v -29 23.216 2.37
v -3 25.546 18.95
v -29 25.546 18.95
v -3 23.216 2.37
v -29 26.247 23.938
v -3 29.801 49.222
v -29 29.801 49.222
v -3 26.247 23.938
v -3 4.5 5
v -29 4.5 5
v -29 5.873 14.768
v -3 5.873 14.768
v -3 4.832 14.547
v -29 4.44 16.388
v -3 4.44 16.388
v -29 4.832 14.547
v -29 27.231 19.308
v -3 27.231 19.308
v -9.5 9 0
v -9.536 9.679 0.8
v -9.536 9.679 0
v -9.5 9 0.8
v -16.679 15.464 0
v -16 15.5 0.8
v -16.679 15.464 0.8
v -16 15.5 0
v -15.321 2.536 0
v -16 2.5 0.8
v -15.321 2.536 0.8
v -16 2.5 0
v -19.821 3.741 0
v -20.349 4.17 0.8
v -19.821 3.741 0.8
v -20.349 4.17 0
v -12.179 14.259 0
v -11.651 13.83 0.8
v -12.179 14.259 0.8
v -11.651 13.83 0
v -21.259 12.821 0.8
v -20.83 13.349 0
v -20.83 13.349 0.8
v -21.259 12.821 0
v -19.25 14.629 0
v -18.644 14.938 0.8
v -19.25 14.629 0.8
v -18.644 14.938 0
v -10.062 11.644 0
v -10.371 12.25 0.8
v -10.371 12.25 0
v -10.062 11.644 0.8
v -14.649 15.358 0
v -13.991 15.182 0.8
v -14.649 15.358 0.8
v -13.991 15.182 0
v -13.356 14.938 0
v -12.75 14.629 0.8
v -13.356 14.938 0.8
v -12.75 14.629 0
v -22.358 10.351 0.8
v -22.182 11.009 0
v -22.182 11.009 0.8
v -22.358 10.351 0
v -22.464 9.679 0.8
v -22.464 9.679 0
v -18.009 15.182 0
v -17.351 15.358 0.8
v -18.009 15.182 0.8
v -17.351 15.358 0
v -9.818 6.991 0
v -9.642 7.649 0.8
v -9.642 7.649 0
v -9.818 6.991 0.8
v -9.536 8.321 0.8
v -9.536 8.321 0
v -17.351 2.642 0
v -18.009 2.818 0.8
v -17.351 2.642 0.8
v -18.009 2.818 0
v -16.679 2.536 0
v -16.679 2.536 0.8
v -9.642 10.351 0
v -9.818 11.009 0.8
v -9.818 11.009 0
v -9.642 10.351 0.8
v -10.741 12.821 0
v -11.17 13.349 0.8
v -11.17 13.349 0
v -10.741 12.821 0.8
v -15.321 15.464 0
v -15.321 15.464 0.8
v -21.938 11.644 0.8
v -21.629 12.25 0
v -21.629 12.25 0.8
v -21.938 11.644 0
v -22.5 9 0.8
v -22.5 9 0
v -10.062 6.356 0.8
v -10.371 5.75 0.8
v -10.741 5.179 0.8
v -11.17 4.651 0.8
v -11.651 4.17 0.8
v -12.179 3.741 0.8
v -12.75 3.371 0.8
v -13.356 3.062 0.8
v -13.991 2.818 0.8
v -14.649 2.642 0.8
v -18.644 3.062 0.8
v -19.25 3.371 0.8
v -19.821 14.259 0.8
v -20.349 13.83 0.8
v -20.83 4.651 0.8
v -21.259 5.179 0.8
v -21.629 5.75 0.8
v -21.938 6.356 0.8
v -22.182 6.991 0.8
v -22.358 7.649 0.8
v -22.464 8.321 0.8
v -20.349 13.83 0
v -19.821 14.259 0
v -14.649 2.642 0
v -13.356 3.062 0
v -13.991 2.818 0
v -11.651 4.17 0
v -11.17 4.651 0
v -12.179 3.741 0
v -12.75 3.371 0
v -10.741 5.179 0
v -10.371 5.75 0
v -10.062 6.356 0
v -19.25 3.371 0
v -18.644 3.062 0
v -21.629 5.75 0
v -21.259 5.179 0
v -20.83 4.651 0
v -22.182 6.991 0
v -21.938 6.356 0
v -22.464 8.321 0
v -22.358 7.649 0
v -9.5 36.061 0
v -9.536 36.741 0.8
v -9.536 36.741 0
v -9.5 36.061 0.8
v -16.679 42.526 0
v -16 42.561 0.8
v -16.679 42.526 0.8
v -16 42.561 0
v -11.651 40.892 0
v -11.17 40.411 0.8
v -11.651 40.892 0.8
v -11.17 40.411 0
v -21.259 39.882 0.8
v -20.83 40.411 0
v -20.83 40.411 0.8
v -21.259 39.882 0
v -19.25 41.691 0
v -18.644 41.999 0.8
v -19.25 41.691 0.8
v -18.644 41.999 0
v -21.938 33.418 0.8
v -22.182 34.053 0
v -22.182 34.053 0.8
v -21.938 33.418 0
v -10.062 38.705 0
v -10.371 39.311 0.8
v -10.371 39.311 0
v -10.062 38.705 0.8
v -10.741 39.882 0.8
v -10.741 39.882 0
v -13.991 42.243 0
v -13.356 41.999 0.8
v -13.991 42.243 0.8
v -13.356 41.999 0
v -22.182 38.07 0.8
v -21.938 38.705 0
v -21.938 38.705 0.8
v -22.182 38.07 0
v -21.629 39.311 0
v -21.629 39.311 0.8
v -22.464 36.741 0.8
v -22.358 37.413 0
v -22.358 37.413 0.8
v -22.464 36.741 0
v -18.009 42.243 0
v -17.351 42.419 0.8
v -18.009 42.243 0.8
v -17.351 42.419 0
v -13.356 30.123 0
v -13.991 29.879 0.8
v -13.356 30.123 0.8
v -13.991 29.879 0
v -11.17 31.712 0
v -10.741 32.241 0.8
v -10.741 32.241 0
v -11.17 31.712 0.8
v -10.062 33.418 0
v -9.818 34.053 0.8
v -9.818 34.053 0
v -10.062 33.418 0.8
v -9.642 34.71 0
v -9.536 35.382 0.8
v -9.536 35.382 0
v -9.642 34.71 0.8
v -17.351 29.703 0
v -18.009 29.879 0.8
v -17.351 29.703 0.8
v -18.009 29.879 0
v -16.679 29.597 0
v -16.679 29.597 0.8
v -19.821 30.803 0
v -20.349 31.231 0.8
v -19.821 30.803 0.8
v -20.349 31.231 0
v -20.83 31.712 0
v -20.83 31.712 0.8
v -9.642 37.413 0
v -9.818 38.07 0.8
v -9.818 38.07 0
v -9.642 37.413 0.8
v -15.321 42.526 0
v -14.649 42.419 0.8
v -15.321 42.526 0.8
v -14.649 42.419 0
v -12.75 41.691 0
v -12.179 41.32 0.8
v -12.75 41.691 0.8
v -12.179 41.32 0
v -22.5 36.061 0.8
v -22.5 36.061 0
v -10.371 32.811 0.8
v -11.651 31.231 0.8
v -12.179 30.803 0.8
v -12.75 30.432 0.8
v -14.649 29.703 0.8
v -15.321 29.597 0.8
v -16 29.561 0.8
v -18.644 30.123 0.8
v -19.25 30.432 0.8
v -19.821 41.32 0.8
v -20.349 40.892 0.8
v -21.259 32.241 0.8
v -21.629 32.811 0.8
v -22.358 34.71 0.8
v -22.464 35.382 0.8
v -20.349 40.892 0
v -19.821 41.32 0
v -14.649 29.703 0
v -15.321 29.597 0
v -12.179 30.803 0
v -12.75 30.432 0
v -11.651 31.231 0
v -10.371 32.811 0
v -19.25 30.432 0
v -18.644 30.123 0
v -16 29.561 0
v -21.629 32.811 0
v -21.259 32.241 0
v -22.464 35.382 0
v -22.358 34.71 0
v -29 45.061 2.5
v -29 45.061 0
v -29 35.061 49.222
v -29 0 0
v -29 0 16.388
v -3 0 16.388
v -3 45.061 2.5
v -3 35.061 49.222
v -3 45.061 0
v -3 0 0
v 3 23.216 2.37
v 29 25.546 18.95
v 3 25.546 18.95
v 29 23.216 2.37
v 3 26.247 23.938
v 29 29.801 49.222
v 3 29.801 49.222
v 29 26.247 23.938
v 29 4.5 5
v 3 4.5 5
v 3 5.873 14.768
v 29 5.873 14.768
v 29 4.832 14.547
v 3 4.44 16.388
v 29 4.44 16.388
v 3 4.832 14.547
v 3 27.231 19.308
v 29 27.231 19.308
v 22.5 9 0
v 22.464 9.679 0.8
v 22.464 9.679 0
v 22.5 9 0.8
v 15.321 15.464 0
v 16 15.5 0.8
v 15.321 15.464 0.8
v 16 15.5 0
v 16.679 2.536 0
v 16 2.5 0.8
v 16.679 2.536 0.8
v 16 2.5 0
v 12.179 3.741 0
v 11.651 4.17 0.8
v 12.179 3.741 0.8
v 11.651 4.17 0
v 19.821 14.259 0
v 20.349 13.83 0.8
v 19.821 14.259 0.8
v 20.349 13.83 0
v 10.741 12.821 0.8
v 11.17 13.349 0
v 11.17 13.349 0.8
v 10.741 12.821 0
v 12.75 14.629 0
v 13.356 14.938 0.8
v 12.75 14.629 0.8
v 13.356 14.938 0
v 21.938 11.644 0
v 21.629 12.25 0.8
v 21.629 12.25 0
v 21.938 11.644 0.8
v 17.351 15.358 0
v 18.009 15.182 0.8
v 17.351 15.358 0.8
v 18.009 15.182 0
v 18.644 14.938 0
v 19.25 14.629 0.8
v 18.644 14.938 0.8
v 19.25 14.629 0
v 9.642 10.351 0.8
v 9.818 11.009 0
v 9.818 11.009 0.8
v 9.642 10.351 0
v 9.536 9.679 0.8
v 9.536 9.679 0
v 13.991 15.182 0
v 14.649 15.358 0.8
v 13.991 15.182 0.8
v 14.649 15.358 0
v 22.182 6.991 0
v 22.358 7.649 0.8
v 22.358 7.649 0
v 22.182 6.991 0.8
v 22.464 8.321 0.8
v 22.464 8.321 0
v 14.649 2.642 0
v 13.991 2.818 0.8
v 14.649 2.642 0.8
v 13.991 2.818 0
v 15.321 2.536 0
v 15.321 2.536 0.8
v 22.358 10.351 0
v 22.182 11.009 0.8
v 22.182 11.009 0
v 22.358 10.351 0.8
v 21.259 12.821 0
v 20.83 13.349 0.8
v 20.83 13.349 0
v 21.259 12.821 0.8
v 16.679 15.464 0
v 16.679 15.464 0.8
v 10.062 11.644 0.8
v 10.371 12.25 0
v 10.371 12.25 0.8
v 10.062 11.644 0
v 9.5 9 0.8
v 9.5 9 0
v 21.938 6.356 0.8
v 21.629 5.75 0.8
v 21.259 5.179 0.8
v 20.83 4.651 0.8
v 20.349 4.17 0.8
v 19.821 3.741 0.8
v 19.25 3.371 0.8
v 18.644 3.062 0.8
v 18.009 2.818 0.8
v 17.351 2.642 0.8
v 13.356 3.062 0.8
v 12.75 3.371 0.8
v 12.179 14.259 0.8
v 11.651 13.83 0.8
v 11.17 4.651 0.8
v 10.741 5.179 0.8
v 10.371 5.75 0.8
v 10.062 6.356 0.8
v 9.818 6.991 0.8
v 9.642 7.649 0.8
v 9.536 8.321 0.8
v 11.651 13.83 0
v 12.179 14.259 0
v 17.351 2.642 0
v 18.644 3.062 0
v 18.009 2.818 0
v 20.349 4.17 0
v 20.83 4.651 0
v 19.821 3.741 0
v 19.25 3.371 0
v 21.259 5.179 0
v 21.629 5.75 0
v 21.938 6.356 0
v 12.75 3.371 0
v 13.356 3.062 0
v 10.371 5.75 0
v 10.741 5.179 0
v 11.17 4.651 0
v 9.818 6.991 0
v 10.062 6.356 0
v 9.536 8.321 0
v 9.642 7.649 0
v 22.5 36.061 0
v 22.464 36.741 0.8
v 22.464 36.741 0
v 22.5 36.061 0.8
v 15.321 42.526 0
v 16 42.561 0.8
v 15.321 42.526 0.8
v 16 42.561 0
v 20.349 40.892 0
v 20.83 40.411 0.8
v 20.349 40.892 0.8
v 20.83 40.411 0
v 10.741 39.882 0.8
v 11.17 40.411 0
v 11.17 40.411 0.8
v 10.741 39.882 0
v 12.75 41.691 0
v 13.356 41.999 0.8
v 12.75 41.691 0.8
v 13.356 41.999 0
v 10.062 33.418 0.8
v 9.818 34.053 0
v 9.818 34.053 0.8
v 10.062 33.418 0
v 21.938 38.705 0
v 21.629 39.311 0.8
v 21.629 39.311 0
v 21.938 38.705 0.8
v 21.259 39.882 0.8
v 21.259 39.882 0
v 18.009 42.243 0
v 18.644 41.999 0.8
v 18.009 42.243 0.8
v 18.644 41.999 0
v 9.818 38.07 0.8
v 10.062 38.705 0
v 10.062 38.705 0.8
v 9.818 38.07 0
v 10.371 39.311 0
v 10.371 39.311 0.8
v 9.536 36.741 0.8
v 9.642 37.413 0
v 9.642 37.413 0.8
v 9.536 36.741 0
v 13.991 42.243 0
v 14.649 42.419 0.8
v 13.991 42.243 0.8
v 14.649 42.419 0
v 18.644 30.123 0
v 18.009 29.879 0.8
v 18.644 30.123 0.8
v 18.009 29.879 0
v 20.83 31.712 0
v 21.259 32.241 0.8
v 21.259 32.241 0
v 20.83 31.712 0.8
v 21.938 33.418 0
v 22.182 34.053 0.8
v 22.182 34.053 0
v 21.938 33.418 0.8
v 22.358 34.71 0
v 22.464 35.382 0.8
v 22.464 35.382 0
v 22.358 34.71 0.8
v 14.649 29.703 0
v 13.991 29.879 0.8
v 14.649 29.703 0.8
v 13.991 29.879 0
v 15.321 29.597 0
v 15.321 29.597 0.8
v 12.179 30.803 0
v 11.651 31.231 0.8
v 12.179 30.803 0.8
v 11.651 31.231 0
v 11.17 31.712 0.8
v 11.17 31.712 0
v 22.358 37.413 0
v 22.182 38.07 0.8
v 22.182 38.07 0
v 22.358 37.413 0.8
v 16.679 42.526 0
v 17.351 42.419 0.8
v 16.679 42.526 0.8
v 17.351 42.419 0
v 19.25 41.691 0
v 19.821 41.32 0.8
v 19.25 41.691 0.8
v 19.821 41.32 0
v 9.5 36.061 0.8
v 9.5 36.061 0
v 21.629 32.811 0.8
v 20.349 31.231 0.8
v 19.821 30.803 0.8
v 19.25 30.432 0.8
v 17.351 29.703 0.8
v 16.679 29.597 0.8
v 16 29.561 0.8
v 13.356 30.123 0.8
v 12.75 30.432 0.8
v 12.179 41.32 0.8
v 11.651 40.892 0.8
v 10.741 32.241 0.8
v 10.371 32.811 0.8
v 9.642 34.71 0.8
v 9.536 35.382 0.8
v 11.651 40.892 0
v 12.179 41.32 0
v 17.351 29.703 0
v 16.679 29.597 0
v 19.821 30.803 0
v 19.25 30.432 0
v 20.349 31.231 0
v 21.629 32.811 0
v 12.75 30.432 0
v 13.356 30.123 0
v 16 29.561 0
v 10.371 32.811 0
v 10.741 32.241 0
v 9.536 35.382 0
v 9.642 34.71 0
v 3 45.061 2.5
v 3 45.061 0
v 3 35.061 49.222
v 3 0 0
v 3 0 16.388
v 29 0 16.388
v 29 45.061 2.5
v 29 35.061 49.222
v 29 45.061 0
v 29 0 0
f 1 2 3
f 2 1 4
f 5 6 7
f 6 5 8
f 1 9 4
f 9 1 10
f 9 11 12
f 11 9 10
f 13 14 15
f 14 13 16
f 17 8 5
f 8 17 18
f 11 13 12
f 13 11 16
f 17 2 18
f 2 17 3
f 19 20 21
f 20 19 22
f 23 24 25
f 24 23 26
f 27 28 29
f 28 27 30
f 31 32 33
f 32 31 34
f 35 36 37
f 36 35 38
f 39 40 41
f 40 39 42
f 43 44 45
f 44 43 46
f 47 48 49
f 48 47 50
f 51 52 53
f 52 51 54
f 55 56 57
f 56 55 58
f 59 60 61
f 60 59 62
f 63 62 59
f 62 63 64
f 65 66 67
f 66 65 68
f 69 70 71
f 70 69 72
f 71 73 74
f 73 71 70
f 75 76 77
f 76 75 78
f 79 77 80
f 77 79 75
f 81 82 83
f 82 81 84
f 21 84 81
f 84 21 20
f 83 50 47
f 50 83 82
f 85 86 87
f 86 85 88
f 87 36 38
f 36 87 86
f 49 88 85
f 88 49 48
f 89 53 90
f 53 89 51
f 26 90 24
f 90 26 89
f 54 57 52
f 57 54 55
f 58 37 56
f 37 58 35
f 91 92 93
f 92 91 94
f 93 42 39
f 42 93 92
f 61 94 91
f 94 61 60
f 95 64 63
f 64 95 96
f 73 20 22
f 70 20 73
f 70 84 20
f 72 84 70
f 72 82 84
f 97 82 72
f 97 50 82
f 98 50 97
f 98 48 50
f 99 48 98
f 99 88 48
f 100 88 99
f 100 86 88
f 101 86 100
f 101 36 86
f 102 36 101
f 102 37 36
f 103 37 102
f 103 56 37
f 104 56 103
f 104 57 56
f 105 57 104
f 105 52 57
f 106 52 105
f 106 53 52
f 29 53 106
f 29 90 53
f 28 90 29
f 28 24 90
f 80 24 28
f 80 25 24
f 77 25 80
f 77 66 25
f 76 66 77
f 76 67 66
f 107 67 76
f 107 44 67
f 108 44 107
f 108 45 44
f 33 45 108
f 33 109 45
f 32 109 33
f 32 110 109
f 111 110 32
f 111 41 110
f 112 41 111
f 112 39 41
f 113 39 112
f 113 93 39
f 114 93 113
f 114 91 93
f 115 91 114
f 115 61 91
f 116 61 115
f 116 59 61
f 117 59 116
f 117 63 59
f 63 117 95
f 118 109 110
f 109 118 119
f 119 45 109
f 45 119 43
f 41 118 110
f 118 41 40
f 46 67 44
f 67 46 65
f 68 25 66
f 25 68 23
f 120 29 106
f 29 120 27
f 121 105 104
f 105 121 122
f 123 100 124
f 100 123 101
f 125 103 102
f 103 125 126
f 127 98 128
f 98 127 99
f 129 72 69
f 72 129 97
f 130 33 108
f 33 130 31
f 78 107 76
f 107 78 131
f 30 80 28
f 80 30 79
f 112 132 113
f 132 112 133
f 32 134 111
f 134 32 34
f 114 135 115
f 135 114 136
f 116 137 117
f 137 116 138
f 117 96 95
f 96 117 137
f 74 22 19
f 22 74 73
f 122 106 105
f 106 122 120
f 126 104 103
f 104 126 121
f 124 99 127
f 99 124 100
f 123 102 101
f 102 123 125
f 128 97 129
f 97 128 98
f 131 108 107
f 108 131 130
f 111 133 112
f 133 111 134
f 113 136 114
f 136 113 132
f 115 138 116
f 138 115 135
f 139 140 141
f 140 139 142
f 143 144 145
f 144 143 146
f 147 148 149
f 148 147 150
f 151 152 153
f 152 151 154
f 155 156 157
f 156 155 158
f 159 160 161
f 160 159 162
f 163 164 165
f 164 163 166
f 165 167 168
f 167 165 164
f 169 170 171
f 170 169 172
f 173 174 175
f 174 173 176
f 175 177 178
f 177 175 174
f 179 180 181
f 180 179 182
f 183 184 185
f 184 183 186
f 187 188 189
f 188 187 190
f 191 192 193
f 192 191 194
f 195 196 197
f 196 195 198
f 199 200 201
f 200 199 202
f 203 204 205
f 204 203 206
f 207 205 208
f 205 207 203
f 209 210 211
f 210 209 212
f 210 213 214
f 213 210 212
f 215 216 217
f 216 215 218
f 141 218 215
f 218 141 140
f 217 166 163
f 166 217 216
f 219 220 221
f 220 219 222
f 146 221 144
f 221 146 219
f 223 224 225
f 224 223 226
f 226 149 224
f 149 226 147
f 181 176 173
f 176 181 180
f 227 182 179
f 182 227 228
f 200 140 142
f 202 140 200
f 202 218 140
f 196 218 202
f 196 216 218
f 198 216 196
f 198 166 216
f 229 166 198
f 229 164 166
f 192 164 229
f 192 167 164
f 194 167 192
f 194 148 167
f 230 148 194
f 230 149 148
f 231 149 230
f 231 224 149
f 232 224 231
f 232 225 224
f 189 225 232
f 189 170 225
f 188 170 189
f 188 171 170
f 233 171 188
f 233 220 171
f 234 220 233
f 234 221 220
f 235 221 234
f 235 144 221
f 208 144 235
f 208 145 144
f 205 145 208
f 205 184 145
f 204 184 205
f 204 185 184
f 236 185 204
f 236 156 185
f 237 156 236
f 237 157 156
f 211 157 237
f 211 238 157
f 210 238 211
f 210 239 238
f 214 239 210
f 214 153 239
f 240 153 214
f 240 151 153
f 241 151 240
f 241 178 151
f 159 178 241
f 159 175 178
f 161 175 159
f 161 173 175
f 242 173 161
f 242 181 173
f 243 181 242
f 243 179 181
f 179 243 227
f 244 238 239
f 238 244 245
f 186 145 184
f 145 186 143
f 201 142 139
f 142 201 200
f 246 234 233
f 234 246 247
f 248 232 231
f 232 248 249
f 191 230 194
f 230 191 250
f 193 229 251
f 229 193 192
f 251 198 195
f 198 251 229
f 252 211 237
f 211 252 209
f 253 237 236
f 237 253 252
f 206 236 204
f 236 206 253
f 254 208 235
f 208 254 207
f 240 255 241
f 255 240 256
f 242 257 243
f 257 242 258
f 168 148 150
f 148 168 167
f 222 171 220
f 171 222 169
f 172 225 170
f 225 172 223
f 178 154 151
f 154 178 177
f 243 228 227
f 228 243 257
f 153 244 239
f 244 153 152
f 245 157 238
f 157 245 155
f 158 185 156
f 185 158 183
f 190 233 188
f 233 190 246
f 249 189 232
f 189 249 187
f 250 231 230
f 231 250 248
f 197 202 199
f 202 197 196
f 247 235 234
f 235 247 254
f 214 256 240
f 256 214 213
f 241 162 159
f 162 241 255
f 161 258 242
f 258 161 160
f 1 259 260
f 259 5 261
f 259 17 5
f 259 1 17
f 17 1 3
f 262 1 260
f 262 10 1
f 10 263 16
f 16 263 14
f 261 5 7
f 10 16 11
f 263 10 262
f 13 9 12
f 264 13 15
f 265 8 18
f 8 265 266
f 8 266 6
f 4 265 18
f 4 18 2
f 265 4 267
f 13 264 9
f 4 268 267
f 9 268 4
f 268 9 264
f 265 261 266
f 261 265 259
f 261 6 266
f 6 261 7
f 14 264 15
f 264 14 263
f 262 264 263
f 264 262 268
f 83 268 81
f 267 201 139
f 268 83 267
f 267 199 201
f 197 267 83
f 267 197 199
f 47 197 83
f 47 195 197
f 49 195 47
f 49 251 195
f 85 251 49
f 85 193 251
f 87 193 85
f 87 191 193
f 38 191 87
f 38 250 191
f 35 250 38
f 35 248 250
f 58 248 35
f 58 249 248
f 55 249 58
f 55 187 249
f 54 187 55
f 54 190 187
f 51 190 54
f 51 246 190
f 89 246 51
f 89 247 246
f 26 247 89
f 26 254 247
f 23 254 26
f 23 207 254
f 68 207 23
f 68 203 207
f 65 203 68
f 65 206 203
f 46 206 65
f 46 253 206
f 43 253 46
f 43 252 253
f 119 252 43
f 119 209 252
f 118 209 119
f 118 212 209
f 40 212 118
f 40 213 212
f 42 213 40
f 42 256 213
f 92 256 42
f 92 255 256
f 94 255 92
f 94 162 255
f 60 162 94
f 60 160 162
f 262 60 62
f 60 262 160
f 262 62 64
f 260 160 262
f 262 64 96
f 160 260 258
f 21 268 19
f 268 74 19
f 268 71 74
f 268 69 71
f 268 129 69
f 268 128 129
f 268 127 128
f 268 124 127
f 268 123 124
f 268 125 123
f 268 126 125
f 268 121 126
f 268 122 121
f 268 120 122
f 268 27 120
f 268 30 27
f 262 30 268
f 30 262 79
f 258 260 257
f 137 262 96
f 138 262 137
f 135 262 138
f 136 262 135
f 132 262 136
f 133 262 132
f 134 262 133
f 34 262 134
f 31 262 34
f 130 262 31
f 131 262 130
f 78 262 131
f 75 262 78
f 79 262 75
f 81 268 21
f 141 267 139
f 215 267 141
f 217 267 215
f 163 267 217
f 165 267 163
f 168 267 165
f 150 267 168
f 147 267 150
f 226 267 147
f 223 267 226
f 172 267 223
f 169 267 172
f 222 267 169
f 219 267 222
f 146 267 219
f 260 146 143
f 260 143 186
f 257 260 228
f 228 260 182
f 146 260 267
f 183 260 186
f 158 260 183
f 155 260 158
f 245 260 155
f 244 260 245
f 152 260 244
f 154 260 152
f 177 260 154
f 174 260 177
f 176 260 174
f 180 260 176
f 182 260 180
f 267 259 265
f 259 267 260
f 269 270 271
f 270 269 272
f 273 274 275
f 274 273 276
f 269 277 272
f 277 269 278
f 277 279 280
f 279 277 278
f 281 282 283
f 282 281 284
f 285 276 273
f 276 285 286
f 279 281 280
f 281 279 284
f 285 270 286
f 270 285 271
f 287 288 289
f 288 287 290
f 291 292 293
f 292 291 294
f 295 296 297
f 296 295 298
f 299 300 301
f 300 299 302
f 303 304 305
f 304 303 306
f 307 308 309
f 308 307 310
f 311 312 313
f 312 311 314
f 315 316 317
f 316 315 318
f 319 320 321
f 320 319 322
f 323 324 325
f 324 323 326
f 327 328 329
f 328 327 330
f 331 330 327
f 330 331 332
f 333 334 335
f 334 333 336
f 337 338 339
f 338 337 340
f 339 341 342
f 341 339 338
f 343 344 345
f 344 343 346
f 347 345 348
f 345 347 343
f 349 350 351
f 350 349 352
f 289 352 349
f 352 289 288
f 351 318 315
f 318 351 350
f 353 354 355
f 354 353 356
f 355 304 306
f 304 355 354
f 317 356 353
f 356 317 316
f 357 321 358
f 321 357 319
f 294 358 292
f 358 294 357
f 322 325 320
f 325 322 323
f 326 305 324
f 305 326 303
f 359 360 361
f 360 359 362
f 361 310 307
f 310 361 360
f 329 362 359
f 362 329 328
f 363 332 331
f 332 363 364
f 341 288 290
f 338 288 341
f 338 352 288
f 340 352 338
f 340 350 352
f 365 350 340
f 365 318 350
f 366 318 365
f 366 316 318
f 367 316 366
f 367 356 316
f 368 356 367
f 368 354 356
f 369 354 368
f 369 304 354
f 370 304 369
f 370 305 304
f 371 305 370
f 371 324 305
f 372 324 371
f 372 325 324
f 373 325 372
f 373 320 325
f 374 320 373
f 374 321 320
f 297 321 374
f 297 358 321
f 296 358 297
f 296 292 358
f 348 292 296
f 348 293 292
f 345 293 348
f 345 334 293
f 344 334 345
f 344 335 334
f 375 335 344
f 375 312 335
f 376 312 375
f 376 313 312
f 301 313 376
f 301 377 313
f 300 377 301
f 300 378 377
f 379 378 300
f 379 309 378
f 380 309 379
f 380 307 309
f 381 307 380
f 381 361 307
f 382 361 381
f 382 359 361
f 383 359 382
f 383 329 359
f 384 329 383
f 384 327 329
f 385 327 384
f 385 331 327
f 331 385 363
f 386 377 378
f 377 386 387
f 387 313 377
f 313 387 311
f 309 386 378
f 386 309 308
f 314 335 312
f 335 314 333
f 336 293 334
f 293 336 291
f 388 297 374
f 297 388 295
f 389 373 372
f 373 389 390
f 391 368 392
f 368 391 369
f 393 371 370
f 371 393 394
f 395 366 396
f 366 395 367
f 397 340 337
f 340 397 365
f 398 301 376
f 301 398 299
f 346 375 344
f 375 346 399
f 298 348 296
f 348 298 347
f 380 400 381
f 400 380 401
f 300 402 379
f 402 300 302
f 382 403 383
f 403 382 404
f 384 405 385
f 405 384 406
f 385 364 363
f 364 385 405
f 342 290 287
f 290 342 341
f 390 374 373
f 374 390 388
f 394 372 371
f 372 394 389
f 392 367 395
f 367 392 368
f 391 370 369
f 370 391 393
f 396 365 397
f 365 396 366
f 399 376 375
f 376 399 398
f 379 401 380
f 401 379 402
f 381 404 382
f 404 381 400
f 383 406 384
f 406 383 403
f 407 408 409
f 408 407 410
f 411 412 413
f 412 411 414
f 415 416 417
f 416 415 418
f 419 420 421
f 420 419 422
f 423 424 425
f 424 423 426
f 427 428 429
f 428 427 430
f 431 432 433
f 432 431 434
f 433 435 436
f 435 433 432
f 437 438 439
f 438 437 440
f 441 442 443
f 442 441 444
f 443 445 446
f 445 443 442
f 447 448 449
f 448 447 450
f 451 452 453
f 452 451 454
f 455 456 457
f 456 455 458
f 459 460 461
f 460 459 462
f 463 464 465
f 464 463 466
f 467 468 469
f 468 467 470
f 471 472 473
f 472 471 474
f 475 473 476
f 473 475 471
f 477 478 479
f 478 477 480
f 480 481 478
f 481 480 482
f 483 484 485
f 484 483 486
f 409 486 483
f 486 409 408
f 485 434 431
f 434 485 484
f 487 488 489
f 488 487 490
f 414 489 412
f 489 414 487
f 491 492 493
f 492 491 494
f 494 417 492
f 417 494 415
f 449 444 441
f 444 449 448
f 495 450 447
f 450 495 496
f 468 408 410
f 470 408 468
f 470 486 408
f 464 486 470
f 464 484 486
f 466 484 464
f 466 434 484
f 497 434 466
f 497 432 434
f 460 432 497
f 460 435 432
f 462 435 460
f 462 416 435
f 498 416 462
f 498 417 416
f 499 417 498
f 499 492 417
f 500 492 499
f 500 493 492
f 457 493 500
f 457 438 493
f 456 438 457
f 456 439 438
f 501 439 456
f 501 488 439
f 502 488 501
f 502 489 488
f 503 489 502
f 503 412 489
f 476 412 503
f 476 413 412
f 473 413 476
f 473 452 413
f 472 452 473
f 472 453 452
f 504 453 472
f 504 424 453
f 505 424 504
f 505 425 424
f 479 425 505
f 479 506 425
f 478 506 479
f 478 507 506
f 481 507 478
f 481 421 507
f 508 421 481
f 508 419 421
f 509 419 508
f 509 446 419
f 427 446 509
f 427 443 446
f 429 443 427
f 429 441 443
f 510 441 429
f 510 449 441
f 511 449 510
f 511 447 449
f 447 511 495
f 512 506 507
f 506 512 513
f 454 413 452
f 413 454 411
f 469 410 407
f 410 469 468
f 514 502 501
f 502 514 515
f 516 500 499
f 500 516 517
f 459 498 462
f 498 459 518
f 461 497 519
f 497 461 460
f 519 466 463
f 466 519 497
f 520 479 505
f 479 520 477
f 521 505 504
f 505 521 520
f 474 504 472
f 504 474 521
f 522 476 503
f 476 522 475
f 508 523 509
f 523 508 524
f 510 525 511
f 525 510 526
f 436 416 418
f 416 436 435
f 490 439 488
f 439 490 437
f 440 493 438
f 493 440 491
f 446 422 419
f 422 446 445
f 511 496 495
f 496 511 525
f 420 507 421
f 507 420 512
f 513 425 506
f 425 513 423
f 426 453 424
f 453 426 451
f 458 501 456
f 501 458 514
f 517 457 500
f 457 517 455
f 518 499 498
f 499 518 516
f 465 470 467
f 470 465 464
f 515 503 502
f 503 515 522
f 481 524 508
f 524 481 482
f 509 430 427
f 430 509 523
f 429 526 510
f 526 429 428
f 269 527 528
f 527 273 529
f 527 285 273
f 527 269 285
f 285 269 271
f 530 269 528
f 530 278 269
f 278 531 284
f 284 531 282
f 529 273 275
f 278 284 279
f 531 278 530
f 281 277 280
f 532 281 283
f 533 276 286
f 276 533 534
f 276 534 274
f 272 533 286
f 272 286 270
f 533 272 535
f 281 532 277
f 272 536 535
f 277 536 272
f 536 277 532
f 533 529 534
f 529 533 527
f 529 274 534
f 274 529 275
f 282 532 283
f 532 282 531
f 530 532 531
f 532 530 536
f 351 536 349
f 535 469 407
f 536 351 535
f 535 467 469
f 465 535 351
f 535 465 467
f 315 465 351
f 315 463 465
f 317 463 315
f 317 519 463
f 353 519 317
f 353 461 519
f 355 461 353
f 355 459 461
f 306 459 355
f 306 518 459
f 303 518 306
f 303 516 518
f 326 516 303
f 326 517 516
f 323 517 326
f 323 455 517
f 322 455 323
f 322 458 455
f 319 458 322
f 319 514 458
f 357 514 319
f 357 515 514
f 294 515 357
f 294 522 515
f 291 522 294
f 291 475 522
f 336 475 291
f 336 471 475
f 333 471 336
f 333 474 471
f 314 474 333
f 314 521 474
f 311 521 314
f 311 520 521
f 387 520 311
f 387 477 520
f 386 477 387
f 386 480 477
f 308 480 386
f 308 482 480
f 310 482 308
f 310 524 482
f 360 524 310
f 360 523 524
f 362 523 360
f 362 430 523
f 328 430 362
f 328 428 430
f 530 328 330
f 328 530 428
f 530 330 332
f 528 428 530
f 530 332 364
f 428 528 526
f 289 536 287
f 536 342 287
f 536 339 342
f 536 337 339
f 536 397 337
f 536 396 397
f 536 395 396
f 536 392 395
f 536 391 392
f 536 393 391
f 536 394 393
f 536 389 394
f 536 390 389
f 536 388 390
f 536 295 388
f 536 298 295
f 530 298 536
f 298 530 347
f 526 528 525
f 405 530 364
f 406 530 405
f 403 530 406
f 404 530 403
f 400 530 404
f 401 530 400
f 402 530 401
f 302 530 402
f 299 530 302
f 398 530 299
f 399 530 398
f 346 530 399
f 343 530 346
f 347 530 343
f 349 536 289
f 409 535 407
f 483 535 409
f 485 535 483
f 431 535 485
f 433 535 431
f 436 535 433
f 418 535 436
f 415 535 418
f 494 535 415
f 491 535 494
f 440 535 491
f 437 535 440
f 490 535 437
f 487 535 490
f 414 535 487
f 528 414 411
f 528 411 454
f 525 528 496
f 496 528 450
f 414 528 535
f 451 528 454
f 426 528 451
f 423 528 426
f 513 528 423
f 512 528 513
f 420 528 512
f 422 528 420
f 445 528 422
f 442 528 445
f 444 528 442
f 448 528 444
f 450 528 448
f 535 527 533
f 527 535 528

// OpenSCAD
// ==============================================================================
// Modular 7-Segment Display Stand System (Tafelstandaard)
// For Modular 7-Segment Clock & Padel Scoreboard
// Designed for Bambu Lab / Prusa / FDM 3D Printing (100% Support-Free)
// ==============================================================================
//
// Features:
// 1. Tool-Free Slide-In Cradle Feet (Compact Design):
//    - Precision 18.9 mm slot (+0.4mm tolerance) lets panels drop in smoothly.
//    - Low-profile 11.5 mm front lip prevents forward slip while staying well below
//      the 15.0 mm bottom LED segment bezel (100% unobstructed light diffusers).
//    - Tall 42.0 mm rear backrest spine supports the backplate firmly.
//    - Ergonomic 8° BACKWARD viewing tilt: the display face leans backward so it is
//      angled upwards towards the viewer's eyes on a table/desk.
//    - Sleek compact footprint: flush front and solid structural body.
//    - Exactly 2 circular recesses of 13.0 mm diameter on the flat underside
//      to mount standard 13 mm anti-slip rubber pads (solid flat bottom).
//    - 100% Support-Free 3D Printing: prints flat on its base with zero overhangs.
//
// 2. Bolt-On M3 Screw-Mount Kickstand Legs:
//    - Fastens directly into the existing M3 bottom corner screw holes (6mm inset)
//      or seam holes (12mm pitch) on the backplate.
//    - Rigid triangular kickstand leg props the display at the same 8° backward tilt.
//
// ==============================================================================

/* [Configuration & Part Selection] */
// What part to generate
part = 2; // [1:"cradle_single - 1 Slide-in Cradle Foot", 2:"cradle_pair - Pair of Slide-in Cradle Feet (L+R)", 3:"cradle_set4 - Set of 4 Cradle Feet", 4:"screw_single - 1 Bolt-on Rear Kickstand Leg", 5:"screw_pair - Pair of Bolt-on Kickstand Legs", 6:"preview - Assembled 3D Preview with Digit Panel", 7:"bottom_view - Underside View with 2x 13mm Pad Recesses"]

/* [Mechanical Dimensions - Cradle Stand] */
panel_thick     = 18.5; // Nominal display thickness (13.0mm frontplate + 5.5mm backplate)
slot_clearance  = 0.40; // Clearance for smooth slide-in fit without scratching (18.9mm slot)
tilt_angle      = 8.0;  // Ergonomic backward tilt in degrees (leans back towards user's eyes)

foot_w          = 26.0; // Width of each stand foot along X (mm)
base_floor      = 5.0;  // Solid bottom floor thickness below the display slot (mm)
front_toe_len   = 0.0;  // Flush front face (no protruding toe)
rear_leg_len    = 10.0; // Compact rear heel (mm)

front_lip_h     = 11.5; // Front lip retention height above slot base (mm, must be < 15.0mm)
front_lip_thick = 4.5;  // Front lip wall thickness (mm)
rear_spine_h    = 42.0; // Rear backrest support height above slot base (mm)
rear_wall_thick = 6.0;  // Rear wall thickness at base of slot (mm)

fillet_r        = 2.5;  // Edge radius for sleek finish and good bed adhesion

/* [Anti-Slip Bumper Recesses - 2x 13mm Circles] */
enable_bumpers  = true; // Add bottom recesses for rubber feet
bumper_d        = 13.0; // Recess diameter: exactly 13.0 mm circular pads
bumper_depth    = 0.8;  // Recess depth into bottom face (mm)
pad_margin      = 2.5;  // Margin from front and rear edges to pad perimeter (mm)

/* [Print Resolution] */
$fn = 60;

// ==============================================================================
// INTERNAL CALCULATIONS & DERIVED VALUES (BACKWARD TILT GEOMETRY)
// ==============================================================================
effective_slot_w = panel_thick + slot_clearance; // 18.9 mm
slot_pivot_y     = front_toe_len + front_lip_thick;

slot_cos = cos(tilt_angle);
slot_sin = sin(tilt_angle);

// Front lip top (tilting backward into +Y as Z climbs)
y_lip_top = slot_pivot_y + front_lip_h * slot_sin;
z_lip_top = base_floor + front_lip_h * slot_cos;

// Rear backrest spine top inner edge (matches top-rear corner of rotated display slot)
y_spine_inner_top = slot_pivot_y + effective_slot_w * slot_cos + rear_spine_h * slot_sin;
z_spine_inner_top = base_floor + effective_slot_w * slot_sin + rear_spine_h * slot_cos;

// Rear spine outer edge (adding wall thickness)
y_spine_outer_top = y_spine_inner_top + rear_wall_thick;
z_spine_outer_top = z_spine_inner_top;

// Total depth along Y from front face to rear heel
total_depth_y = y_spine_outer_top + rear_leg_len;

// Exact Y center positions for the two 13mm circular pad recesses
y_pad_front = pad_margin + bumper_d / 2;
y_pad_rear  = total_depth_y - pad_margin - bumper_d / 2;

// ------------------------------------------------------------------------------
// CRADLE STAND FOOT MODULE (COMPACT, SOLID, 2x 13mm PAD RECESSES)
// ------------------------------------------------------------------------------
module cradle_stand_foot() {
    difference() {
        // Main solid body: 2D side profile extruded along X using multmatrix mapping
        multmatrix([
            [0, 0, 1, 0],
            [1, 0, 0, 0],
            [0, 1, 0, 0],
            [0, 0, 0, 1]
        ])
        linear_extrude(height = foot_w) {
            polygon(points = [
                [0, 0],                                    // Front bottom
                [total_depth_y, 0],                        // Rear heel bottom
                [total_depth_y, 2.5],                      // Rear heel fillet point
                [y_spine_outer_top, z_spine_outer_top],    // Spine top outer edge
                [y_spine_inner_top, z_spine_inner_top],    // Spine top inner edge
                [y_lip_top, z_lip_top],                    // Front lip top inner edge
                (front_toe_len > 0 ? [front_toe_len, base_floor] : [0, z_lip_top]),
                (front_toe_len > 0 ? [0, 3.0] : [0, 0])
            ]);
        }
        
        // 1. Backward-Tilted Display Slot Cutout (-tilt_angle around X)
        translate([-1, slot_pivot_y, base_floor]) {
            rotate([-tilt_angle, 0, 0]) {
                // Main pocket
                cube([foot_w + 2, effective_slot_w, 200]);
                
                // Chamfered lead-in funnel on top of front lip
                translate([0, -1.0, front_lip_h - 2.0])
                    rotate([20, 0, 0])
                        cube([foot_w + 2, effective_slot_w + 4.0, 16.0]);
            }
        }
        
        // 2. Exactly 2 circular recesses of 13.0 mm diameter for anti-slip pads (Z = 0)
        // Solid flat bottom with no rectangular channel/trench
        if (enable_bumpers) {
            // Front 13mm circular recess
            translate([foot_w / 2, y_pad_front, -0.1])
                cylinder(h = bumper_depth + 0.1, d = bumper_d, $fn = 60);
                
            // Rear 13mm circular recess
            translate([foot_w / 2, y_pad_rear, -0.1])
                cylinder(h = bumper_depth + 0.1, d = bumper_d, $fn = 60);
        }
    }
}

// ------------------------------------------------------------------------------
// CRADLE MULTI-PART BED LAYOUTS
// ------------------------------------------------------------------------------
module cradle_stand_pair(spacing = 6.0) {
    translate([-foot_w - spacing/2, 0, 0])
        cradle_stand_foot();
        
    translate([spacing/2, 0, 0])
        cradle_stand_foot();
}

module cradle_stand_set4(spacing = 6.0) {
    for (ix = [-1, 1]) {
        for (iy = [0, 1]) {
            translate([ix * (foot_w/2 + spacing/2) + (ix < 0 ? -foot_w/2 : 0), iy * (total_depth_y + spacing), 0])
                cradle_stand_foot();
        }
    }
}

// ------------------------------------------------------------------------------
// BOLT-ON M3 SCREW-MOUNT KICKSTAND LEG
// ------------------------------------------------------------------------------
// Fastens with M3 screws directly into bottom corner holes (6mm inset)
// or bottom seam holes (12mm pitch).
// Designed to print flat on its side for maximum layer-line bending strength.
module screw_mount_kickstand(tilt = tilt_angle) {
    leg_thick    = 10.0;  // Width of kickstand leg (mm)
    flange_h     = 24.0;  // Height of attachment plate
    flange_w     = 24.0;  // Width across seam
    hole_pitch   = 12.0;  // Distance between seam holes (or single corner)
    leg_reach    = 76.0;  // Reach behind backplate
    
    // Geometry printed flat on print bed (X-Y plane) for fast, support-free printing
    difference() {
        union() {
            // Triangular truss body
            linear_extrude(height = leg_thick) {
                polygon(points = [
                    [0, 0],
                    [flange_h, 0],
                    [flange_h, 3.2],
                    [6.0, leg_reach],
                    [0, leg_reach],
                    [0, 0]
                ]);
            }
            
            // Mounting flange plate extending across screw hole positions
            translate([0, -flange_w/2 + leg_thick/2, 0])
                cube([flange_h, flange_w, 3.2]);
                
            // Round foot pad at leg tip
            translate([3.0, leg_reach - 4.0, leg_thick/2])
                cylinder(h = leg_thick, r = 8.0, center = true);
        }
        
        // M3 Screw clearance holes (3.4 mm) with flush countersinks
        // Two holes spaced 12.0mm apart (seam mounting)
        for (oy = [-hole_pitch/2, hole_pitch/2]) {
            translate([6.0, oy + leg_thick/2, -0.1]) {
                cylinder(h = 3.4, d = 3.4);
                translate([0, 0, 3.2 - 1.8 + 0.1])
                    cylinder(h = 1.9, d1 = 3.4, d2 = 6.6);
            }
        }
        // Single central hole option
        translate([16.0, leg_thick/2, -0.1]) {
            cylinder(h = 3.4, d = 3.4);
            translate([0, 0, 3.2 - 1.8 + 0.1])
                cylinder(h = 1.9, d1 = 3.4, d2 = 6.6);
        }
        
        // Circular bumper recess on foot pad (13mm pad)
        translate([3.0, leg_reach - 4.0, leg_thick - bumper_depth])
            cylinder(h = bumper_depth + 0.1, d = bumper_d);
    }
}

module screw_mount_pair(spacing = 8.0) {
    translate([0, -spacing/2 - 12.0, 0]) screw_mount_kickstand();
    translate([0, spacing/2 + 12.0, 0]) screw_mount_kickstand();
}

// ------------------------------------------------------------------------------
// ASSEMBLED 3D PREVIEW WITH SIMULATED 7-SEGMENT DIGIT (BACKWARD VIEWING TILT)
// ------------------------------------------------------------------------------
module display_stand_assembled_preview() {
    digit_w = 138.4;
    digit_h = 230.4;
    digit_d = 18.5;
    
    // Stand feet placed under left and right sides of the digit
    foot_spacing = digit_w - 38.0;
    
    // Left Foot (Sky Blue)
    translate([-foot_spacing/2 - foot_w/2, 0, 0])
        color("#0284c7")
            cradle_stand_foot();
            
    // Right Foot (Sky Blue)
    translate([foot_spacing/2 - foot_w/2, 0, 0])
        color("#0284c7")
            cradle_stand_foot();
            
    // 13mm Rubber Bumpers preview (Charcoal circles)
    color("#1e293b") {
        for (fx = [-foot_spacing/2, foot_spacing/2]) {
            translate([fx, y_pad_front, -0.8]) cylinder(h = 0.8, d = bumper_d);
            translate([fx, y_pad_rear, -0.8]) cylinder(h = 0.8, d = bumper_d);
        }
    }
    
    // Position of the display seated in the cradle slot (LEANING BACKWARD by tilt_angle)
    translate([0, slot_pivot_y, base_floor]) {
        rotate([-tilt_angle, 0, 0]) {
            // Simulated 7-Segment Digit Panel
            // Outer Enclosure (Matte Charcoal)
            color("#0f172a", 0.95) {
                difference() {
                    translate([-digit_w/2, 0, 0])
                        cube([digit_w, digit_d, digit_h]);
                    
                    // Recessed front face for segments
                    translate([-digit_w/2 + 2, -0.1, 2])
                        cube([digit_w - 4, 1.0, digit_h - 4]);
                }
            }
            
            // Glowing LED Segments (Displaying '7' in Neon Cyan)
            color("#38bdf8") {
                // Top segment (A)
                translate([0, -0.4, digit_h - 23.2])
                    cube([65, 0.8, 12], center = true);
                // Top-right segment (B)
                translate([30, -0.4, digit_h - 60])
                    cube([12, 0.8, 62], center = true);
                // Bottom-right segment (C)
                translate([30, -0.4, digit_h - 135])
                    cube([12, 0.8, 62], center = true);
            }
            
            // Bottom segment position marker (Segment D, unlit dark slate)
            // Visually confirms 100% clearance above the front lip!
            color("#334155") {
                translate([0, -0.4, 23.2])
                    cube([65, 0.8, 12], center = true);
            }
            
            // Backplate detail (Slate)
            color("#334155")
                translate([-digit_w/2 + 3, digit_d - 5.5, 3])
                    cube([digit_w - 6, 5.3, digit_h - 6]);
        }
    }
    
    // Table surface preview (Translucent frosted glass)
    color("#e2e8f0", 0.25)
        translate([0, 20, -0.5])
            cube([digit_w * 1.5, 100, 1.0], center = true);
}

// ==============================================================================
// TOP-LEVEL SELECTOR
// ==============================================================================
if (part == 1 || part == "cradle_single") {
    color("#0284c7") cradle_stand_foot();
} else if (part == 2 || part == "cradle_pair") {
    color("#0284c7") cradle_stand_pair(spacing = 6.0);
} else if (part == 3 || part == "cradle_set4") {
    color("#0284c7") cradle_stand_set4(spacing = 6.0);
} else if (part == 4 || part == "screw_single") {
    color("#0284c7") screw_mount_kickstand();
} else if (part == 5 || part == "screw_pair") {
    color("#0284c7") screw_mount_pair(spacing = 8.0);
} else if (part == 6 || part == "preview" || part == "assembly") {
    display_stand_assembled_preview();
} else if (part == 7 || part == "bottom_view") {
    rotate([180, 0, 0])
        color("#0284c7")
            cradle_stand_foot();
}
